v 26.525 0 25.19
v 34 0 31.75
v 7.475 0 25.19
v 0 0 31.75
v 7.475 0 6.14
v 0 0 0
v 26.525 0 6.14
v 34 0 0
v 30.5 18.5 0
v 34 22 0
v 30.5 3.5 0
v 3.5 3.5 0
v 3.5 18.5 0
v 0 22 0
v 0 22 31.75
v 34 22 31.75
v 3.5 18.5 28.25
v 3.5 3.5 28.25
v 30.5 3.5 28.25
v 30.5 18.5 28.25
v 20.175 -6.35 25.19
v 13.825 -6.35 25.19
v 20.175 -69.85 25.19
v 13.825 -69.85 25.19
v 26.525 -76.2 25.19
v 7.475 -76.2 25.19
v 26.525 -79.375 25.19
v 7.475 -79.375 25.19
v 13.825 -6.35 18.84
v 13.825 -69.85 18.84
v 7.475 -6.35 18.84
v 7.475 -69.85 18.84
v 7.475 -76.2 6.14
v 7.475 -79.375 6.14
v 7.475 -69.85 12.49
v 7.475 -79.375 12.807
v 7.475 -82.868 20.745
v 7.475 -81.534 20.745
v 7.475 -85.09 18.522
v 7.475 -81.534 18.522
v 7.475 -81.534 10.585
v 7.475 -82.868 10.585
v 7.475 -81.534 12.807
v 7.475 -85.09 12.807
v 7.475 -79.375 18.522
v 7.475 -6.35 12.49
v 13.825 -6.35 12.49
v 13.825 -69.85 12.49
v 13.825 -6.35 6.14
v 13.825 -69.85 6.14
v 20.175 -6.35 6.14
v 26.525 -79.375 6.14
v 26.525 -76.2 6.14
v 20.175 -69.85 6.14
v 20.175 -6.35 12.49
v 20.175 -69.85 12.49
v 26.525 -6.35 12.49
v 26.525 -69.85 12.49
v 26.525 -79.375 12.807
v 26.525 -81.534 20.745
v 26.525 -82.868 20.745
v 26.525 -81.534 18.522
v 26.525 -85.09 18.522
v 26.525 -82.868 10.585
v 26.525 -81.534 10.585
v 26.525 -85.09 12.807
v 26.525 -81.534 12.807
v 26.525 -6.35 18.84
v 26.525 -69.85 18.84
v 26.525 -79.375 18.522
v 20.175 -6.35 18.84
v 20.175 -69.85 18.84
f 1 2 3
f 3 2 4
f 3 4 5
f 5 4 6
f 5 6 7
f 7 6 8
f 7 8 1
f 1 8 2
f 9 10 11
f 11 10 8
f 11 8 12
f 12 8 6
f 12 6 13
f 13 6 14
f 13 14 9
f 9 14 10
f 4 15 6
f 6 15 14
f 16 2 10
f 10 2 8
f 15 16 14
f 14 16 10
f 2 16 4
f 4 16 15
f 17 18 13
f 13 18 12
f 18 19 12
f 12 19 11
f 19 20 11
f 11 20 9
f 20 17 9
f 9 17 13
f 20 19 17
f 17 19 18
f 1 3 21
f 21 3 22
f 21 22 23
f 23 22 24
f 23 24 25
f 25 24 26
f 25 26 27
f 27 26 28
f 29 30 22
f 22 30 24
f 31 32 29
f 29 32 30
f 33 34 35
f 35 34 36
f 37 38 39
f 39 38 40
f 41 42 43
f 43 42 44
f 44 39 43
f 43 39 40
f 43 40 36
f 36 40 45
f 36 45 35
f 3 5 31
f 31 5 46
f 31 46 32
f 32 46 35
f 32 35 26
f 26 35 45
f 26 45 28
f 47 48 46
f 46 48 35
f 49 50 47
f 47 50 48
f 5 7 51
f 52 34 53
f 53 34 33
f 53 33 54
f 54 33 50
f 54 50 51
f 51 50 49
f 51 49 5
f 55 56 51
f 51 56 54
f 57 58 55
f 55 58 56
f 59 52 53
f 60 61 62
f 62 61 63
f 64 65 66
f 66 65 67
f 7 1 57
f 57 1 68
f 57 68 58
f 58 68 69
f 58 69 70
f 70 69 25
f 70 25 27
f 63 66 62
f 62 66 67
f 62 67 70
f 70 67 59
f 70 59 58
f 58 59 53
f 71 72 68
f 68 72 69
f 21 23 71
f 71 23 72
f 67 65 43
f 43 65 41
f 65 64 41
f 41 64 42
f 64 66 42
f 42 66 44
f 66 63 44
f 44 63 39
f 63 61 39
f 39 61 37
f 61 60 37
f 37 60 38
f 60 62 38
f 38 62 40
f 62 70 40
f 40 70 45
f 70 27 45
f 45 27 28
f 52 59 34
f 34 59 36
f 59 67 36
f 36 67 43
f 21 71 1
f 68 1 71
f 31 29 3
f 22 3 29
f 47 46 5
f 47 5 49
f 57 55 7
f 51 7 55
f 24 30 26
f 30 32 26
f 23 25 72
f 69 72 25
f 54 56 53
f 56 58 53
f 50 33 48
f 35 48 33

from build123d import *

# Parameters (mm, degrees)
SKETCH1_W           = 34
SKETCH1_H           = 22
BOSS_EXTRUDE1_DEPTH = 31.75
SHELL1_T            = -3.5
BOSS_EXTRUDE2_DEPTH = 76.2
BOSS_EXTRUDE3_START = 26.525
BOSS_EXTRUDE3_DEPTH = 19.05
CHAMFER1_SIZE       = 6.35


with BuildPart() as part:
    # Sketch1 → Boss-Extrude1 (new body)
    with BuildSketch(Plane.XY):
        with Locations((17, 11)):
            Rectangle(SKETCH1_W, SKETCH1_H)
    extrude(amount=BOSS_EXTRUDE1_DEPTH)

    # Shell1
    shell1_openings = [part.faces().sort_by_distance(p)[0] for p in [
        (17, 11, 0),
    ]]
    offset(amount=SHELL1_T, openings=shell1_openings, kind=Kind.INTERSECTION)

    # Sketch2 → Boss-Extrude2 (add)
    with BuildSketch(Plane.XZ):
        Polygon((13.825, 25.189889706), (13.825, 18.839889706), (7.475, 18.839889706), (7.475, 12.489889706), (13.825, 12.489889706), (13.825, 6.139889706), (20.175, 6.139889706), (20.175, 12.489889706), (26.525, 12.489889706), (26.525, 18.839889706), (20.175, 18.839889706), (20.175, 25.189889706), align=None)
    extrude(amount=BOSS_EXTRUDE2_DEPTH)

    # Sketch3 → Boss-Extrude3 (add)
    with BuildSketch(Plane(origin=(0, 0, 0), x_dir=(0, 0, -1), z_dir=(1, 0, 0)).offset(BOSS_EXTRUDE3_START)):
        Polygon((-10.584889706, -81.534), (-10.584889706, -82.8675), (-12.807389706, -85.09), (-18.522389706, -85.09), (-20.744889706, -82.8675), (-20.744889706, -81.534), (-18.522389706, -81.534), (-18.522389706, -79.375), (-25.189889706, -79.375), (-25.189889706, -76.2), (-6.139889706, -76.2), (-6.139889706, -79.375), (-12.807389706, -79.375), (-12.807389706, -81.534), align=None)
    extrude(amount=-BOSS_EXTRUDE3_DEPTH)

    # Chamfer1
    # the kernel refuses this chamfer: 6.35 mm, written as the material it adds along each edge
    with BuildSketch(Plane(origin=(30.155186974, -76.2, 18.839889706), x_dir=(0, -0.027495876610585664, 0.9996219169112966), z_dir=(-1, 0, 0))) as chamfer1_piece_1_section:
        Polygon((CHAMFER1_SIZE * 0.999621916911, CHAMFER1_SIZE * 0.0274958766106), (-CHAMFER1_SIZE * 0.0274958766106, CHAMFER1_SIZE * 0.999621916911), (0, 0), align=None)
    chamfer1_piece_1 = extrude(amount=22.680186974, mode=Mode.PRIVATE)
    chamfer1_piece_1 = split(chamfer1_piece_1, bisect_by=Plane(origin=(26.525, -74.083333333, 20.956556373), z_dir=(-1, 0, 0)), keep=Keep.TOP, mode=Mode.PRIVATE)
    add(chamfer1_piece_1)
    with BuildSketch(Plane(origin=(13.825, -76.2, 25.189889706), x_dir=(-0.9996219169112966, -0.027495876610585654, 0), z_dir=(0, 0, -1))) as chamfer1_piece_2_section:
        Polygon((CHAMFER1_SIZE * 0.999621916911, CHAMFER1_SIZE * 0.0274958766106), (-CHAMFER1_SIZE * 0.0274958766106, CHAMFER1_SIZE * 0.999621916911), (0, 0), align=None)
    chamfer1_piece_2 = extrude(amount=22.680186974, mode=Mode.PRIVATE)
    chamfer1_piece_2 = split(chamfer1_piece_2, bisect_by=Plane(origin=(11.708333333, -74.083333333, 6.139889706), z_dir=(0, 0, 1)), keep=Keep.TOP, mode=Mode.PRIVATE)
    add(chamfer1_piece_2)
    with BuildSketch(Plane(origin=(26.525, -76.2, 18.839889706), x_dir=(0, -0.027495876610585654, 0.9996219169112968), z_dir=(-1, 0, 0))) as chamfer1_piece_3_section:
        Polygon((CHAMFER1_SIZE * 0.999621916911, CHAMFER1_SIZE * 0.0274958766106), (-CHAMFER1_SIZE * 0.0274958766106, CHAMFER1_SIZE * 0.999621916911), (0, 0), align=None)
    chamfer1_piece_3 = extrude(amount=22.680186974, mode=Mode.PRIVATE)
    chamfer1_piece_3 = split(chamfer1_piece_3, bisect_by=Plane(origin=(7.475, -74.083333333, 20.956556373), z_dir=(1, 0, 0)), keep=Keep.TOP, mode=Mode.PRIVATE)
    add(chamfer1_piece_3)
    with BuildSketch(Plane(origin=(20.175, -76.2, 2.509702732), x_dir=(0.9996219169112966, -0.02749587661058565, 0), z_dir=(0, 0, 1))) as chamfer1_piece_4_section:
        Polygon((CHAMFER1_SIZE * 0.999621916911, CHAMFER1_SIZE * 0.0274958766106), (-CHAMFER1_SIZE * 0.0274958766106, CHAMFER1_SIZE * 0.999621916911), (0, 0), align=None)
    chamfer1_piece_4 = extrude(amount=22.680186974, mode=Mode.PRIVATE)
    chamfer1_piece_4 = split(chamfer1_piece_4, bisect_by=Plane(origin=(22.291666667, -74.083333333, 6.139889706), z_dir=(0, 0, 1)), keep=Keep.TOP, mode=Mode.PRIVATE)
    add(chamfer1_piece_4)
    with BuildSketch(Plane(origin=(3.844813026, -76.2, 12.489889706), x_dir=(0, -0.027495876610585654, -0.9996219169112966), z_dir=(1, 0, 0))) as chamfer1_piece_5_section:
        Polygon((CHAMFER1_SIZE * 0.999621916911, CHAMFER1_SIZE * 0.0274958766106), (-CHAMFER1_SIZE * 0.0274958766106, CHAMFER1_SIZE * 0.999621916911), (0, 0), align=None)
    chamfer1_piece_5 = extrude(amount=22.680186974, mode=Mode.PRIVATE)
    chamfer1_piece_5 = split(chamfer1_piece_5, bisect_by=Plane(origin=(7.475, -74.083333333, 10.373223039), z_dir=(1, 0, 0)), keep=Keep.TOP, mode=Mode.PRIVATE)
    add(chamfer1_piece_5)
    with BuildSketch(Plane(origin=(20.175, -76.2, 6.139889706), x_dir=(0.9996219169112966, -0.02749587661058565, 0), z_dir=(0, 0, 1))) as chamfer1_piece_6_section:
        Polygon((CHAMFER1_SIZE * 0.999621916911, CHAMFER1_SIZE * 0.0274958766106), (-CHAMFER1_SIZE * 0.0274958766106, CHAMFER1_SIZE * 0.999621916911), (0, 0), align=None)
    chamfer1_piece_6 = extrude(amount=22.680186974, mode=Mode.PRIVATE)
    chamfer1_piece_6 = split(chamfer1_piece_6, bisect_by=Plane(origin=(22.291666667, -74.083333333, 25.189889706), z_dir=(0, 0, -1)), keep=Keep.TOP, mode=Mode.PRIVATE)
    add(chamfer1_piece_6)
    with BuildSketch(Plane(origin=(7.475, -76.2, 12.489889706), x_dir=(0, -0.027495876610585654, -0.9996219169112966), z_dir=(1, 0, 0))) as chamfer1_piece_7_section:
        Polygon((CHAMFER1_SIZE * 0.999621916911, CHAMFER1_SIZE * 0.0274958766106), (-CHAMFER1_SIZE * 0.0274958766106, CHAMFER1_SIZE * 0.999621916911), (0, 0), align=None)
    chamfer1_piece_7 = extrude(amount=22.680186974, mode=Mode.PRIVATE)
    chamfer1_piece_7 = split(chamfer1_piece_7, bisect_by=Plane(origin=(26.525, -74.083333333, 10.373223039), z_dir=(-1, 0, 0)), keep=Keep.TOP, mode=Mode.PRIVATE)
    add(chamfer1_piece_7)
    with BuildSketch(Plane(origin=(13.825, -76.2, 28.820076679), x_dir=(-0.9996219169112966, -0.02749587661058566, 0), z_dir=(0, 0, -1))) as chamfer1_piece_8_section:
        Polygon((CHAMFER1_SIZE * 0.999621916911, CHAMFER1_SIZE * 0.0274958766106), (-CHAMFER1_SIZE * 0.0274958766106, CHAMFER1_SIZE * 0.999621916911), (0, 0), align=None)
    chamfer1_piece_8 = extrude(amount=22.680186974, mode=Mode.PRIVATE)
    chamfer1_piece_8 = split(chamfer1_piece_8, bisect_by=Plane(origin=(11.708333333, -74.083333333, 25.189889706), z_dir=(0, 0, -1)), keep=Keep.TOP, mode=Mode.PRIVATE)
    add(chamfer1_piece_8)
    with BuildSketch(Plane(origin=(13.825, 0, 25.189889706), x_dir=(-0.9996219169112966, 0.02749587661058637, 0), z_dir=(0, 0, -1))) as chamfer1_piece_9_section:
        Polygon((CHAMFER1_SIZE * 0.999621916911, -CHAMFER1_SIZE * 0.0274958766106), (-CHAMFER1_SIZE * 0.0274958766106, -CHAMFER1_SIZE * 0.999621916911), (0, 0), align=None)
    chamfer1_piece_9 = extrude(amount=22.680186974, mode=Mode.PRIVATE)
    chamfer1_piece_9 = split(chamfer1_piece_9, bisect_by=Plane(origin=(11.708333333, -2.116666667, 6.139889706), z_dir=(0, 0, 1)), keep=Keep.TOP, mode=Mode.PRIVATE)
    add(chamfer1_piece_9)
    with BuildSketch(Plane(origin=(30.155186974, 0, 18.839889706), x_dir=(0, 0.027495876610586382, 0.9996219169112966), z_dir=(-1, 0, 0))) as chamfer1_piece_10_section:
        Polygon((CHAMFER1_SIZE * 0.999621916911, -CHAMFER1_SIZE * 0.0274958766106), (-CHAMFER1_SIZE * 0.0274958766106, -CHAMFER1_SIZE * 0.999621916911), (0, 0), align=None)
    chamfer1_piece_10 = extrude(amount=22.680186974, mode=Mode.PRIVATE)
    chamfer1_piece_10 = split(chamfer1_piece_10, bisect_by=Plane(origin=(26.525, -2.116666667, 20.956556373), z_dir=(-1, 0, 0)), keep=Keep.TOP, mode=Mode.PRIVATE)
    add(chamfer1_piece_10)
    with BuildSketch(Plane(origin=(26.525, 0, 18.839889706), x_dir=(0, -0.9996219169112966, -0.0274958766105862), z_dir=(-1, 0, 0))) as chamfer1_piece_11_section:
        Polygon((CHAMFER1_SIZE * 0.999621916911, CHAMFER1_SIZE * 0.0274958766106), (-CHAMFER1_SIZE * 0.0274958766106, CHAMFER1_SIZE * 0.999621916911), (0, 0), align=None)
    chamfer1_piece_11 = extrude(amount=22.680186974, mode=Mode.PRIVATE)
    chamfer1_piece_11 = split(chamfer1_piece_11, bisect_by=Plane(origin=(7.475, -2.116666667, 20.956556373), z_dir=(1, 0, 0)), keep=Keep.TOP, mode=Mode.PRIVATE)
    add(chamfer1_piece_11)
    with BuildSketch(Plane(origin=(20.175, 0, 2.509702732), x_dir=(-0.0274958766105862, -0.9996219169112966, 0), z_dir=(0, 0, 1))) as chamfer1_piece_12_section:
        Polygon((CHAMFER1_SIZE * 0.999621916911, CHAMFER1_SIZE * 0.0274958766106), (-CHAMFER1_SIZE * 0.0274958766106, CHAMFER1_SIZE * 0.999621916911), (0, 0), align=None)
    chamfer1_piece_12 = extrude(amount=22.680186974, mode=Mode.PRIVATE)
    chamfer1_piece_12 = split(chamfer1_piece_12, bisect_by=Plane(origin=(22.291666667, -2.116666667, 6.139889706), z_dir=(0, 0, 1)), keep=Keep.TOP, mode=Mode.PRIVATE)
    add(chamfer1_piece_12)
    with BuildSketch(Plane(origin=(20.175, 0, 6.139889706), x_dir=(0.9996219169112966, 0.027495876610586365, 0), z_dir=(0, 0, 1))) as chamfer1_piece_13_section:
        Polygon((CHAMFER1_SIZE * 0.999621916911, -CHAMFER1_SIZE * 0.0274958766106), (-CHAMFER1_SIZE * 0.0274958766106, -CHAMFER1_SIZE * 0.999621916911), (0, 0), align=None)
    chamfer1_piece_13 = extrude(amount=22.680186974, mode=Mode.PRIVATE)
    chamfer1_piece_13 = split(chamfer1_piece_13, bisect_by=Plane(origin=(22.291666667, -2.116666667, 25.189889706), z_dir=(0, 0, -1)), keep=Keep.TOP, mode=Mode.PRIVATE)
    add(chamfer1_piece_13)
    with BuildSketch(Plane(origin=(3.844813026, 0, 12.489889706), x_dir=(0, -0.9996219169112966, 0.02749587661058647), z_dir=(1, 0, 0))) as chamfer1_piece_14_section:
        Polygon((CHAMFER1_SIZE * 0.999621916911, CHAMFER1_SIZE * 0.0274958766106), (-CHAMFER1_SIZE * 0.0274958766106, CHAMFER1_SIZE * 0.999621916911), (0, 0), align=None)
    chamfer1_piece_14 = extrude(amount=22.680186974, mode=Mode.PRIVATE)
    chamfer1_piece_14 = split(chamfer1_piece_14, bisect_by=Plane(origin=(7.475, -2.116666667, 10.373223039), z_dir=(1, 0, 0)), keep=Keep.TOP, mode=Mode.PRIVATE)
    add(chamfer1_piece_14)
    with BuildSketch(Plane(origin=(13.825, 0, 28.820076679), x_dir=(-0.9996219169112966, 0.02749587661058637, 0), z_dir=(0, 0, -1))) as chamfer1_piece_15_section:
        Polygon((CHAMFER1_SIZE * 0.999621916911, -CHAMFER1_SIZE * 0.0274958766106), (-CHAMFER1_SIZE * 0.0274958766106, -CHAMFER1_SIZE * 0.999621916911), (0, 0), align=None)
    chamfer1_piece_15 = extrude(amount=22.680186974, mode=Mode.PRIVATE)
    chamfer1_piece_15 = split(chamfer1_piece_15, bisect_by=Plane(origin=(11.708333333, -2.116666667, 25.189889706), z_dir=(0, 0, -1)), keep=Keep.TOP, mode=Mode.PRIVATE)
    add(chamfer1_piece_15)
    with BuildSketch(Plane(origin=(7.475, 0, 12.489889706), x_dir=(0, 0.02749587661058637, -0.9996219169112966), z_dir=(1, 0, 0))) as chamfer1_piece_16_section:
        Polygon((CHAMFER1_SIZE * 0.999621916911, -CHAMFER1_SIZE * 0.0274958766106), (-CHAMFER1_SIZE * 0.0274958766106, -CHAMFER1_SIZE * 0.999621916911), (0, 0), align=None)
    chamfer1_piece_16 = extrude(amount=22.680186974, mode=Mode.PRIVATE)
    chamfer1_piece_16 = split(chamfer1_piece_16, bisect_by=Plane(origin=(26.525, -2.116666667, 10.373223039), z_dir=(-1, 0, 0)), keep=Keep.TOP, mode=Mode.PRIVATE)
    add(chamfer1_piece_16)


solid = part.part
